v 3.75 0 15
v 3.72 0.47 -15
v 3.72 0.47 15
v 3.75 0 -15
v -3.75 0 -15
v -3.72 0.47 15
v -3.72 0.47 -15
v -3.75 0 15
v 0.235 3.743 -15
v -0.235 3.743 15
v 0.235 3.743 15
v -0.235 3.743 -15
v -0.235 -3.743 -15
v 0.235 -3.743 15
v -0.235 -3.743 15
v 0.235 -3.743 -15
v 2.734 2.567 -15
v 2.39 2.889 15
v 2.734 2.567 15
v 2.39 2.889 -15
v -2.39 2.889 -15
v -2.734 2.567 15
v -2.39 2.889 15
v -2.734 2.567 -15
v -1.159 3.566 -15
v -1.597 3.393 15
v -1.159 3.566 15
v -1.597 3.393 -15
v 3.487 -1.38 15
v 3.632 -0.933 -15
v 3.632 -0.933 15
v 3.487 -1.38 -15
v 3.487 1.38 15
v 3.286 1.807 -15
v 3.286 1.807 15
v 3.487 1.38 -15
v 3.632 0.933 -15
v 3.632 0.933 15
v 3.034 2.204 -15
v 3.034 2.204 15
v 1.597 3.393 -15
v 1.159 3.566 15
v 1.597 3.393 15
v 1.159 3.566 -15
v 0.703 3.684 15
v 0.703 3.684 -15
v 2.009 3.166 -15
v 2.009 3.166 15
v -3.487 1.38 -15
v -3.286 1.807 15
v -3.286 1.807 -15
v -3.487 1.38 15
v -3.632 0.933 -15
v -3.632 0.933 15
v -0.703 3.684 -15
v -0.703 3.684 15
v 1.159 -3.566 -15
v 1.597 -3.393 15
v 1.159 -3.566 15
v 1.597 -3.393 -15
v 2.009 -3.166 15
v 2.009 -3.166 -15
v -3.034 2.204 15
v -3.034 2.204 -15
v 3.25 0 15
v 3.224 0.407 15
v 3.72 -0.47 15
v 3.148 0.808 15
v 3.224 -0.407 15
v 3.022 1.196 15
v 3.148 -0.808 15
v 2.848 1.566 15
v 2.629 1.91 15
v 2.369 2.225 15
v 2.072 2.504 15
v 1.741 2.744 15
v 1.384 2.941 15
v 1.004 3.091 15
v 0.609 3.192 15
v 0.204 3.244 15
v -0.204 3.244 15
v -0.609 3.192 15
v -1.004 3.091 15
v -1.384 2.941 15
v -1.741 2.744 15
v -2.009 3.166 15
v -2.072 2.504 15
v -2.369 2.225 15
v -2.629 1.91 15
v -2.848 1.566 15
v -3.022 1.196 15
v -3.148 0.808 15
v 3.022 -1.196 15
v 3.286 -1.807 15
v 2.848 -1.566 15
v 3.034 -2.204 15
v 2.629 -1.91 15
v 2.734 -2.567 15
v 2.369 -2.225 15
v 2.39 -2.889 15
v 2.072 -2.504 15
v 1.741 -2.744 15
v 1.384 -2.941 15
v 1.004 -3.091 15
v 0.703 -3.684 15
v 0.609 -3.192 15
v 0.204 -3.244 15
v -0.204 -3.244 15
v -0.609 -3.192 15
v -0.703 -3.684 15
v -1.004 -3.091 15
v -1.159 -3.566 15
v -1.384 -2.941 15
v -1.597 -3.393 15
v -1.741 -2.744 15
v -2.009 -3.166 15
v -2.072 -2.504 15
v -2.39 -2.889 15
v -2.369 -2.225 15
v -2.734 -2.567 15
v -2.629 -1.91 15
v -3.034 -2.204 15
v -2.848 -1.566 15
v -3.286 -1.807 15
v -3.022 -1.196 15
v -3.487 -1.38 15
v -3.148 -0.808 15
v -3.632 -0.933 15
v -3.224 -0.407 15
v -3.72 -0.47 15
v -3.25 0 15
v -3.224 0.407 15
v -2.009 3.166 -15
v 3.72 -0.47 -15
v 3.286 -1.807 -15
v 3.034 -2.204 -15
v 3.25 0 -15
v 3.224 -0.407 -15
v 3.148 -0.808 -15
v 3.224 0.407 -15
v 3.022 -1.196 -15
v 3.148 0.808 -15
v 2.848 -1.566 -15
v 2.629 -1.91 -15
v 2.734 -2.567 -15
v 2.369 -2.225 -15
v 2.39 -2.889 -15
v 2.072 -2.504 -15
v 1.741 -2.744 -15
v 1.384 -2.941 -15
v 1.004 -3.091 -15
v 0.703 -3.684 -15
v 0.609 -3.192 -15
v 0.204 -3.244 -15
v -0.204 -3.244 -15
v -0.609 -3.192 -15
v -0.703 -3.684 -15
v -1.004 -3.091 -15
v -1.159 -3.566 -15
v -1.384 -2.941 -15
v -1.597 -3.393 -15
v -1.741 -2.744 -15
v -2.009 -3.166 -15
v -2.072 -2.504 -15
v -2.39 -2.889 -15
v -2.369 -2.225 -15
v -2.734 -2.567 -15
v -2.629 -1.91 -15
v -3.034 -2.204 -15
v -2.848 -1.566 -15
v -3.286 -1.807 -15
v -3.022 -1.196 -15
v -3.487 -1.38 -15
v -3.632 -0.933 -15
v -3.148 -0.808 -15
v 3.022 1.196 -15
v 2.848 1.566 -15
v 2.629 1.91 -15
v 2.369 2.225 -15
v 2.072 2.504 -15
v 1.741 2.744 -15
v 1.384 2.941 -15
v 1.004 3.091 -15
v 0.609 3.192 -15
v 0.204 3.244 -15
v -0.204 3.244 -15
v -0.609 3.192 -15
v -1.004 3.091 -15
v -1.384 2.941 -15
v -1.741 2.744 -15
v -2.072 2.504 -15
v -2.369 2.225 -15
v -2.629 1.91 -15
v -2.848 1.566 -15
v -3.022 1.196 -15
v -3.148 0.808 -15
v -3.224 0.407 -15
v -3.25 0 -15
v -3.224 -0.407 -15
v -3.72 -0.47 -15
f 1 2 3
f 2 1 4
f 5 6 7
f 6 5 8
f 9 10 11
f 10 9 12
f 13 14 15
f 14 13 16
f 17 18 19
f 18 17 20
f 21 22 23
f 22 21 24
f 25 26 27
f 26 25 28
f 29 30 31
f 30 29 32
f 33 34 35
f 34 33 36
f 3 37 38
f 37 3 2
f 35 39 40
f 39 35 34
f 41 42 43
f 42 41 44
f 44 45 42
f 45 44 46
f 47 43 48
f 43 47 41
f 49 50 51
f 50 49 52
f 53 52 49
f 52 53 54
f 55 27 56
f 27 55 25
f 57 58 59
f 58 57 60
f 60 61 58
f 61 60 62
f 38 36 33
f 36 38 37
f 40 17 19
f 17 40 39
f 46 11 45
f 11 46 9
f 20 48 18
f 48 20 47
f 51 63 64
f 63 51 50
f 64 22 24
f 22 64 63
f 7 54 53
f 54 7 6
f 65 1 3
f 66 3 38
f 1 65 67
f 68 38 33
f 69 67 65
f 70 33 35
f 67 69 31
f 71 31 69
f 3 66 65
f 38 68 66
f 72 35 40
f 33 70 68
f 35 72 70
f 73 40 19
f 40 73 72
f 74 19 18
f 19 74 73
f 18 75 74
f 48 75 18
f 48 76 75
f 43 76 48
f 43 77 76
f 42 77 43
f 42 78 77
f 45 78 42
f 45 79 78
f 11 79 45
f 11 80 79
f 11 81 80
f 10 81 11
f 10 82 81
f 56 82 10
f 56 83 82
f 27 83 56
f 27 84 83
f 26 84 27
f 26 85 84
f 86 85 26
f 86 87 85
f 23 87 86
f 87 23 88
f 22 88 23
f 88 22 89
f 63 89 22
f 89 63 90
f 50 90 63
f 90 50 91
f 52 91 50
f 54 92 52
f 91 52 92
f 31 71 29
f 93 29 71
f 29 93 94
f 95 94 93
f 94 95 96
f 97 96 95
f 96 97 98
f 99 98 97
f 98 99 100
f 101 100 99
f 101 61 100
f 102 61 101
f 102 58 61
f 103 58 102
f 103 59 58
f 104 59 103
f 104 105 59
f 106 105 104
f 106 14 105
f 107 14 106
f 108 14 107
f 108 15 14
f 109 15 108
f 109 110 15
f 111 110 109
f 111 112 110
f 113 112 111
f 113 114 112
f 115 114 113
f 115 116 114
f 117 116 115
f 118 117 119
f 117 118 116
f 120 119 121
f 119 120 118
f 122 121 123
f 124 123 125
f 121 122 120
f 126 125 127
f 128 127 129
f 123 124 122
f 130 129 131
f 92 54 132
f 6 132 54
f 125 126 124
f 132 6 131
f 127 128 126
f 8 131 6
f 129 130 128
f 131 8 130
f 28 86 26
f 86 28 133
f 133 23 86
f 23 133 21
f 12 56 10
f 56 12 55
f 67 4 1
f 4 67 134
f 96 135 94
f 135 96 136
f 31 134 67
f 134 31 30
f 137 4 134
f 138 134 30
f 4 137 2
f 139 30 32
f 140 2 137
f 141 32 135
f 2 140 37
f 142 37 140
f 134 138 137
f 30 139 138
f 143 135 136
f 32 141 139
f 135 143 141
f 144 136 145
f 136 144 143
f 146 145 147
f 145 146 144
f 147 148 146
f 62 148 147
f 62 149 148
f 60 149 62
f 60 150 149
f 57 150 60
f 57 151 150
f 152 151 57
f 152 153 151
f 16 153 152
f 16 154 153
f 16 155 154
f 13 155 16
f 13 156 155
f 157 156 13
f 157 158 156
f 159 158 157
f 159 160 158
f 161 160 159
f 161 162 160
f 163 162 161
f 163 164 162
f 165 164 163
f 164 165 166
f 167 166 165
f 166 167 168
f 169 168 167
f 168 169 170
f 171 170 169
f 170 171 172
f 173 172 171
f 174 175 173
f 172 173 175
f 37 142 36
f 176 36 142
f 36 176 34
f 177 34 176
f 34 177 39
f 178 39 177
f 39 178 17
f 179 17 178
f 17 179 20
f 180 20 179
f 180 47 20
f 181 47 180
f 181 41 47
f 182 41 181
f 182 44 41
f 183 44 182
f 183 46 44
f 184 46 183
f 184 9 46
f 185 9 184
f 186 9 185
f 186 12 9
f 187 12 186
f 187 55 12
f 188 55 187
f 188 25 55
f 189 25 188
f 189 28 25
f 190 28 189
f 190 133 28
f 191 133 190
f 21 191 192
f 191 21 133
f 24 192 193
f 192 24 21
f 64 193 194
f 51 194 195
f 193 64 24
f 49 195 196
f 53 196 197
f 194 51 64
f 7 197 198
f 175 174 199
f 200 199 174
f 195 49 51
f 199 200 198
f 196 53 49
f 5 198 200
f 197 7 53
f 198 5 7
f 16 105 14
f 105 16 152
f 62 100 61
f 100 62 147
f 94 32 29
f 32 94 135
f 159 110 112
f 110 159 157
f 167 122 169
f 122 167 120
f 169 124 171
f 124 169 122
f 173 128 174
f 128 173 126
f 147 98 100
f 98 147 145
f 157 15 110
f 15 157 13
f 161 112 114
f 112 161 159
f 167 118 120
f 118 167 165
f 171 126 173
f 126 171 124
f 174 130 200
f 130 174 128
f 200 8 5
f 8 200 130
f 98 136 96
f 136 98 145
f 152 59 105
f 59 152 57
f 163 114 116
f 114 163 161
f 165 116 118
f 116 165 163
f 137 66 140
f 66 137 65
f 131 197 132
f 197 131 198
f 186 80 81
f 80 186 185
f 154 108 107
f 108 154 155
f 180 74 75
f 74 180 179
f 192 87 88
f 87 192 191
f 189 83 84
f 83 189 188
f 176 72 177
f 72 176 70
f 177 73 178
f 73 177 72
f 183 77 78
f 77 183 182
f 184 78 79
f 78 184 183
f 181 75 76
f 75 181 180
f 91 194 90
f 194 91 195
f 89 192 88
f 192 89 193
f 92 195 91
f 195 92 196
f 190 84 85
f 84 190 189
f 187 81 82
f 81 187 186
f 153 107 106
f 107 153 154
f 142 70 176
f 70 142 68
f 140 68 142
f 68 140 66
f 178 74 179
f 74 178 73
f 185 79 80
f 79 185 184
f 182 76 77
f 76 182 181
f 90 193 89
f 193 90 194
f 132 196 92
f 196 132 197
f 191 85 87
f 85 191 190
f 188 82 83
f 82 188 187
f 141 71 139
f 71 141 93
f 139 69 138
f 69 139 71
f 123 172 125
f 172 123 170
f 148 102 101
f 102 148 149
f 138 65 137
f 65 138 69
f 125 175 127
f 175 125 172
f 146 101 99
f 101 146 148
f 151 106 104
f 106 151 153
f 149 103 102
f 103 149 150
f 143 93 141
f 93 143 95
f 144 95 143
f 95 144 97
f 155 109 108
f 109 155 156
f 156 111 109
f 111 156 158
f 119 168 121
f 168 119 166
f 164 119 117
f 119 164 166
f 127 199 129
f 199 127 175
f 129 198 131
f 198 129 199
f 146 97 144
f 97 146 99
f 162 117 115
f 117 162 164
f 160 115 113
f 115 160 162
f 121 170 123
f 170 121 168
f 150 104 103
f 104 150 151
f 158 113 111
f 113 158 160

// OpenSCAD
$fn = 50;


difference() {
	union() {
		translate(v = [0, 0, -15.0000000000]) {
			cylinder(h = 30, r = 3.7500000000);
		}
	}
	union() {
		translate(v = [0, 0, -100.0000000000]) {
			cylinder(h = 200, r = 3.2500000000);
		}
	}
}
